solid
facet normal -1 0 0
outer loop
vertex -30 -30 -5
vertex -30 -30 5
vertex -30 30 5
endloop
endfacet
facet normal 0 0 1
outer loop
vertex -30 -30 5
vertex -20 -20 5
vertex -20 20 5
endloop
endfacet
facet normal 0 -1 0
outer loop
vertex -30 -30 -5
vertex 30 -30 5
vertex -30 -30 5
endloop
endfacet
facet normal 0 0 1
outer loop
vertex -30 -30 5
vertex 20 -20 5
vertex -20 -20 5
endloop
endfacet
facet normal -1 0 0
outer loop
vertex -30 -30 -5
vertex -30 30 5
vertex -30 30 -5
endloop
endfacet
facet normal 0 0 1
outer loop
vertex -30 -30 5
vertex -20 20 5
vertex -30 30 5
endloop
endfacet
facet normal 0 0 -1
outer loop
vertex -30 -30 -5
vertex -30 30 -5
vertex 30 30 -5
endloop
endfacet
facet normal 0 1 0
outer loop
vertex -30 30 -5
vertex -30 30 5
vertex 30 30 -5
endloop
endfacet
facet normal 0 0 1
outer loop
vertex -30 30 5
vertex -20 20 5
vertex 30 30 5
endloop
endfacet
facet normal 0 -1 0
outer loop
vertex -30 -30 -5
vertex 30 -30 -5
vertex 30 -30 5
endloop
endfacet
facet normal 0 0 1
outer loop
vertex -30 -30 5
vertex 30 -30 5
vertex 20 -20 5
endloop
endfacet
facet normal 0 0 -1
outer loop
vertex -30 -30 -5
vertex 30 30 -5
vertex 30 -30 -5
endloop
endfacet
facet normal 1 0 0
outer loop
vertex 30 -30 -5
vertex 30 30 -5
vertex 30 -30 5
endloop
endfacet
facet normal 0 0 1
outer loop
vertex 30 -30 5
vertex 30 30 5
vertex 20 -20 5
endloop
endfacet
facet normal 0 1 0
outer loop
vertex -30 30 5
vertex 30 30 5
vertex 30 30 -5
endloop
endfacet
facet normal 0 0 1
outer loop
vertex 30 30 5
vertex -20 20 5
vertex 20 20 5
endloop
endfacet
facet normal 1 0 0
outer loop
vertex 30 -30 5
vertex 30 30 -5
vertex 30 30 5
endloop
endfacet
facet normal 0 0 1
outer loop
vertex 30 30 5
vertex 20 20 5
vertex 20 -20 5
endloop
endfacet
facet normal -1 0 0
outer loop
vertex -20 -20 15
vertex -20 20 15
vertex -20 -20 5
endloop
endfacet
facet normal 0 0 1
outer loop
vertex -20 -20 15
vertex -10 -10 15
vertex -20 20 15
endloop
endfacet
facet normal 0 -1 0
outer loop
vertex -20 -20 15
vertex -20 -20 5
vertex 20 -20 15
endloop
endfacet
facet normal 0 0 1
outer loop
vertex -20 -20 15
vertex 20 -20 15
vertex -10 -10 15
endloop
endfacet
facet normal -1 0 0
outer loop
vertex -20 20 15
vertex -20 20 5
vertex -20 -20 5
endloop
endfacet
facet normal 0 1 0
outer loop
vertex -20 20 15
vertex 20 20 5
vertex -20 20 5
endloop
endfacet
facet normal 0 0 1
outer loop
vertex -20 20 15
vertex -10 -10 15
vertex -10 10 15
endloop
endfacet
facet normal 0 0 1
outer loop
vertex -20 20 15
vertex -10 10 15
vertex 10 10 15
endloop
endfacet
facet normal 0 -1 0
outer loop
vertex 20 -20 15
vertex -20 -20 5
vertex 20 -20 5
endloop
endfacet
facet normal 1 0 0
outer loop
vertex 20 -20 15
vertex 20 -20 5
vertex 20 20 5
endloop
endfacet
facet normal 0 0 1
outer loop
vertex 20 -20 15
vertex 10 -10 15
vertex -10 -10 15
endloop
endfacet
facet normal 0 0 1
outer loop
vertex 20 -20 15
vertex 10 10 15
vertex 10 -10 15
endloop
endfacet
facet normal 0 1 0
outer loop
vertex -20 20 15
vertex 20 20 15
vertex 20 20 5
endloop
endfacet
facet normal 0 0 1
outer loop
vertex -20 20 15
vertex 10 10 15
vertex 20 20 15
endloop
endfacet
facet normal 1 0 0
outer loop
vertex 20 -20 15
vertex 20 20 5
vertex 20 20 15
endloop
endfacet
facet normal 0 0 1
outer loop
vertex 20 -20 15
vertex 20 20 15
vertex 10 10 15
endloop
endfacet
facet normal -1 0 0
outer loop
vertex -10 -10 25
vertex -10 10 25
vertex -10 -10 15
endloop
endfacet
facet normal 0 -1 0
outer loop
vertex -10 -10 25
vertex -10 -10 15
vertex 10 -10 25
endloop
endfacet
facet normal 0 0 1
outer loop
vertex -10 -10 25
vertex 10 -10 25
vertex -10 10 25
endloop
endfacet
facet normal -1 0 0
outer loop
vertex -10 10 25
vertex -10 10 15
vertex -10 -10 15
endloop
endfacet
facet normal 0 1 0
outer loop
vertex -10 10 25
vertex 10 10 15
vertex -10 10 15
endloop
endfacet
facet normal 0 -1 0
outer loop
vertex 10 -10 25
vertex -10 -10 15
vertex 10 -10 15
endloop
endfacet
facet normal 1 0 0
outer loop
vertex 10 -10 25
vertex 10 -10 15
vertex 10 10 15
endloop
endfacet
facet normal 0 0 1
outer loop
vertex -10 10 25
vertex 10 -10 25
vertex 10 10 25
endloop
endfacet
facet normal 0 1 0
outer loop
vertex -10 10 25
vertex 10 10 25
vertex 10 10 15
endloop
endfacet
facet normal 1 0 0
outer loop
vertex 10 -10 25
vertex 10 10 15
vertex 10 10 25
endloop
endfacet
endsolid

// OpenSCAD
union() {
    // 1段目（底辺）
    cube([60, 60, 10], center = true);
    
    // 2段目
    translate([0, 0, 10])
        cube([40, 40, 10], center = true);
    
    // 3段目（最上段）
    translate([0, 0, 20])
        cube([20, 20, 10], center = true);
}
